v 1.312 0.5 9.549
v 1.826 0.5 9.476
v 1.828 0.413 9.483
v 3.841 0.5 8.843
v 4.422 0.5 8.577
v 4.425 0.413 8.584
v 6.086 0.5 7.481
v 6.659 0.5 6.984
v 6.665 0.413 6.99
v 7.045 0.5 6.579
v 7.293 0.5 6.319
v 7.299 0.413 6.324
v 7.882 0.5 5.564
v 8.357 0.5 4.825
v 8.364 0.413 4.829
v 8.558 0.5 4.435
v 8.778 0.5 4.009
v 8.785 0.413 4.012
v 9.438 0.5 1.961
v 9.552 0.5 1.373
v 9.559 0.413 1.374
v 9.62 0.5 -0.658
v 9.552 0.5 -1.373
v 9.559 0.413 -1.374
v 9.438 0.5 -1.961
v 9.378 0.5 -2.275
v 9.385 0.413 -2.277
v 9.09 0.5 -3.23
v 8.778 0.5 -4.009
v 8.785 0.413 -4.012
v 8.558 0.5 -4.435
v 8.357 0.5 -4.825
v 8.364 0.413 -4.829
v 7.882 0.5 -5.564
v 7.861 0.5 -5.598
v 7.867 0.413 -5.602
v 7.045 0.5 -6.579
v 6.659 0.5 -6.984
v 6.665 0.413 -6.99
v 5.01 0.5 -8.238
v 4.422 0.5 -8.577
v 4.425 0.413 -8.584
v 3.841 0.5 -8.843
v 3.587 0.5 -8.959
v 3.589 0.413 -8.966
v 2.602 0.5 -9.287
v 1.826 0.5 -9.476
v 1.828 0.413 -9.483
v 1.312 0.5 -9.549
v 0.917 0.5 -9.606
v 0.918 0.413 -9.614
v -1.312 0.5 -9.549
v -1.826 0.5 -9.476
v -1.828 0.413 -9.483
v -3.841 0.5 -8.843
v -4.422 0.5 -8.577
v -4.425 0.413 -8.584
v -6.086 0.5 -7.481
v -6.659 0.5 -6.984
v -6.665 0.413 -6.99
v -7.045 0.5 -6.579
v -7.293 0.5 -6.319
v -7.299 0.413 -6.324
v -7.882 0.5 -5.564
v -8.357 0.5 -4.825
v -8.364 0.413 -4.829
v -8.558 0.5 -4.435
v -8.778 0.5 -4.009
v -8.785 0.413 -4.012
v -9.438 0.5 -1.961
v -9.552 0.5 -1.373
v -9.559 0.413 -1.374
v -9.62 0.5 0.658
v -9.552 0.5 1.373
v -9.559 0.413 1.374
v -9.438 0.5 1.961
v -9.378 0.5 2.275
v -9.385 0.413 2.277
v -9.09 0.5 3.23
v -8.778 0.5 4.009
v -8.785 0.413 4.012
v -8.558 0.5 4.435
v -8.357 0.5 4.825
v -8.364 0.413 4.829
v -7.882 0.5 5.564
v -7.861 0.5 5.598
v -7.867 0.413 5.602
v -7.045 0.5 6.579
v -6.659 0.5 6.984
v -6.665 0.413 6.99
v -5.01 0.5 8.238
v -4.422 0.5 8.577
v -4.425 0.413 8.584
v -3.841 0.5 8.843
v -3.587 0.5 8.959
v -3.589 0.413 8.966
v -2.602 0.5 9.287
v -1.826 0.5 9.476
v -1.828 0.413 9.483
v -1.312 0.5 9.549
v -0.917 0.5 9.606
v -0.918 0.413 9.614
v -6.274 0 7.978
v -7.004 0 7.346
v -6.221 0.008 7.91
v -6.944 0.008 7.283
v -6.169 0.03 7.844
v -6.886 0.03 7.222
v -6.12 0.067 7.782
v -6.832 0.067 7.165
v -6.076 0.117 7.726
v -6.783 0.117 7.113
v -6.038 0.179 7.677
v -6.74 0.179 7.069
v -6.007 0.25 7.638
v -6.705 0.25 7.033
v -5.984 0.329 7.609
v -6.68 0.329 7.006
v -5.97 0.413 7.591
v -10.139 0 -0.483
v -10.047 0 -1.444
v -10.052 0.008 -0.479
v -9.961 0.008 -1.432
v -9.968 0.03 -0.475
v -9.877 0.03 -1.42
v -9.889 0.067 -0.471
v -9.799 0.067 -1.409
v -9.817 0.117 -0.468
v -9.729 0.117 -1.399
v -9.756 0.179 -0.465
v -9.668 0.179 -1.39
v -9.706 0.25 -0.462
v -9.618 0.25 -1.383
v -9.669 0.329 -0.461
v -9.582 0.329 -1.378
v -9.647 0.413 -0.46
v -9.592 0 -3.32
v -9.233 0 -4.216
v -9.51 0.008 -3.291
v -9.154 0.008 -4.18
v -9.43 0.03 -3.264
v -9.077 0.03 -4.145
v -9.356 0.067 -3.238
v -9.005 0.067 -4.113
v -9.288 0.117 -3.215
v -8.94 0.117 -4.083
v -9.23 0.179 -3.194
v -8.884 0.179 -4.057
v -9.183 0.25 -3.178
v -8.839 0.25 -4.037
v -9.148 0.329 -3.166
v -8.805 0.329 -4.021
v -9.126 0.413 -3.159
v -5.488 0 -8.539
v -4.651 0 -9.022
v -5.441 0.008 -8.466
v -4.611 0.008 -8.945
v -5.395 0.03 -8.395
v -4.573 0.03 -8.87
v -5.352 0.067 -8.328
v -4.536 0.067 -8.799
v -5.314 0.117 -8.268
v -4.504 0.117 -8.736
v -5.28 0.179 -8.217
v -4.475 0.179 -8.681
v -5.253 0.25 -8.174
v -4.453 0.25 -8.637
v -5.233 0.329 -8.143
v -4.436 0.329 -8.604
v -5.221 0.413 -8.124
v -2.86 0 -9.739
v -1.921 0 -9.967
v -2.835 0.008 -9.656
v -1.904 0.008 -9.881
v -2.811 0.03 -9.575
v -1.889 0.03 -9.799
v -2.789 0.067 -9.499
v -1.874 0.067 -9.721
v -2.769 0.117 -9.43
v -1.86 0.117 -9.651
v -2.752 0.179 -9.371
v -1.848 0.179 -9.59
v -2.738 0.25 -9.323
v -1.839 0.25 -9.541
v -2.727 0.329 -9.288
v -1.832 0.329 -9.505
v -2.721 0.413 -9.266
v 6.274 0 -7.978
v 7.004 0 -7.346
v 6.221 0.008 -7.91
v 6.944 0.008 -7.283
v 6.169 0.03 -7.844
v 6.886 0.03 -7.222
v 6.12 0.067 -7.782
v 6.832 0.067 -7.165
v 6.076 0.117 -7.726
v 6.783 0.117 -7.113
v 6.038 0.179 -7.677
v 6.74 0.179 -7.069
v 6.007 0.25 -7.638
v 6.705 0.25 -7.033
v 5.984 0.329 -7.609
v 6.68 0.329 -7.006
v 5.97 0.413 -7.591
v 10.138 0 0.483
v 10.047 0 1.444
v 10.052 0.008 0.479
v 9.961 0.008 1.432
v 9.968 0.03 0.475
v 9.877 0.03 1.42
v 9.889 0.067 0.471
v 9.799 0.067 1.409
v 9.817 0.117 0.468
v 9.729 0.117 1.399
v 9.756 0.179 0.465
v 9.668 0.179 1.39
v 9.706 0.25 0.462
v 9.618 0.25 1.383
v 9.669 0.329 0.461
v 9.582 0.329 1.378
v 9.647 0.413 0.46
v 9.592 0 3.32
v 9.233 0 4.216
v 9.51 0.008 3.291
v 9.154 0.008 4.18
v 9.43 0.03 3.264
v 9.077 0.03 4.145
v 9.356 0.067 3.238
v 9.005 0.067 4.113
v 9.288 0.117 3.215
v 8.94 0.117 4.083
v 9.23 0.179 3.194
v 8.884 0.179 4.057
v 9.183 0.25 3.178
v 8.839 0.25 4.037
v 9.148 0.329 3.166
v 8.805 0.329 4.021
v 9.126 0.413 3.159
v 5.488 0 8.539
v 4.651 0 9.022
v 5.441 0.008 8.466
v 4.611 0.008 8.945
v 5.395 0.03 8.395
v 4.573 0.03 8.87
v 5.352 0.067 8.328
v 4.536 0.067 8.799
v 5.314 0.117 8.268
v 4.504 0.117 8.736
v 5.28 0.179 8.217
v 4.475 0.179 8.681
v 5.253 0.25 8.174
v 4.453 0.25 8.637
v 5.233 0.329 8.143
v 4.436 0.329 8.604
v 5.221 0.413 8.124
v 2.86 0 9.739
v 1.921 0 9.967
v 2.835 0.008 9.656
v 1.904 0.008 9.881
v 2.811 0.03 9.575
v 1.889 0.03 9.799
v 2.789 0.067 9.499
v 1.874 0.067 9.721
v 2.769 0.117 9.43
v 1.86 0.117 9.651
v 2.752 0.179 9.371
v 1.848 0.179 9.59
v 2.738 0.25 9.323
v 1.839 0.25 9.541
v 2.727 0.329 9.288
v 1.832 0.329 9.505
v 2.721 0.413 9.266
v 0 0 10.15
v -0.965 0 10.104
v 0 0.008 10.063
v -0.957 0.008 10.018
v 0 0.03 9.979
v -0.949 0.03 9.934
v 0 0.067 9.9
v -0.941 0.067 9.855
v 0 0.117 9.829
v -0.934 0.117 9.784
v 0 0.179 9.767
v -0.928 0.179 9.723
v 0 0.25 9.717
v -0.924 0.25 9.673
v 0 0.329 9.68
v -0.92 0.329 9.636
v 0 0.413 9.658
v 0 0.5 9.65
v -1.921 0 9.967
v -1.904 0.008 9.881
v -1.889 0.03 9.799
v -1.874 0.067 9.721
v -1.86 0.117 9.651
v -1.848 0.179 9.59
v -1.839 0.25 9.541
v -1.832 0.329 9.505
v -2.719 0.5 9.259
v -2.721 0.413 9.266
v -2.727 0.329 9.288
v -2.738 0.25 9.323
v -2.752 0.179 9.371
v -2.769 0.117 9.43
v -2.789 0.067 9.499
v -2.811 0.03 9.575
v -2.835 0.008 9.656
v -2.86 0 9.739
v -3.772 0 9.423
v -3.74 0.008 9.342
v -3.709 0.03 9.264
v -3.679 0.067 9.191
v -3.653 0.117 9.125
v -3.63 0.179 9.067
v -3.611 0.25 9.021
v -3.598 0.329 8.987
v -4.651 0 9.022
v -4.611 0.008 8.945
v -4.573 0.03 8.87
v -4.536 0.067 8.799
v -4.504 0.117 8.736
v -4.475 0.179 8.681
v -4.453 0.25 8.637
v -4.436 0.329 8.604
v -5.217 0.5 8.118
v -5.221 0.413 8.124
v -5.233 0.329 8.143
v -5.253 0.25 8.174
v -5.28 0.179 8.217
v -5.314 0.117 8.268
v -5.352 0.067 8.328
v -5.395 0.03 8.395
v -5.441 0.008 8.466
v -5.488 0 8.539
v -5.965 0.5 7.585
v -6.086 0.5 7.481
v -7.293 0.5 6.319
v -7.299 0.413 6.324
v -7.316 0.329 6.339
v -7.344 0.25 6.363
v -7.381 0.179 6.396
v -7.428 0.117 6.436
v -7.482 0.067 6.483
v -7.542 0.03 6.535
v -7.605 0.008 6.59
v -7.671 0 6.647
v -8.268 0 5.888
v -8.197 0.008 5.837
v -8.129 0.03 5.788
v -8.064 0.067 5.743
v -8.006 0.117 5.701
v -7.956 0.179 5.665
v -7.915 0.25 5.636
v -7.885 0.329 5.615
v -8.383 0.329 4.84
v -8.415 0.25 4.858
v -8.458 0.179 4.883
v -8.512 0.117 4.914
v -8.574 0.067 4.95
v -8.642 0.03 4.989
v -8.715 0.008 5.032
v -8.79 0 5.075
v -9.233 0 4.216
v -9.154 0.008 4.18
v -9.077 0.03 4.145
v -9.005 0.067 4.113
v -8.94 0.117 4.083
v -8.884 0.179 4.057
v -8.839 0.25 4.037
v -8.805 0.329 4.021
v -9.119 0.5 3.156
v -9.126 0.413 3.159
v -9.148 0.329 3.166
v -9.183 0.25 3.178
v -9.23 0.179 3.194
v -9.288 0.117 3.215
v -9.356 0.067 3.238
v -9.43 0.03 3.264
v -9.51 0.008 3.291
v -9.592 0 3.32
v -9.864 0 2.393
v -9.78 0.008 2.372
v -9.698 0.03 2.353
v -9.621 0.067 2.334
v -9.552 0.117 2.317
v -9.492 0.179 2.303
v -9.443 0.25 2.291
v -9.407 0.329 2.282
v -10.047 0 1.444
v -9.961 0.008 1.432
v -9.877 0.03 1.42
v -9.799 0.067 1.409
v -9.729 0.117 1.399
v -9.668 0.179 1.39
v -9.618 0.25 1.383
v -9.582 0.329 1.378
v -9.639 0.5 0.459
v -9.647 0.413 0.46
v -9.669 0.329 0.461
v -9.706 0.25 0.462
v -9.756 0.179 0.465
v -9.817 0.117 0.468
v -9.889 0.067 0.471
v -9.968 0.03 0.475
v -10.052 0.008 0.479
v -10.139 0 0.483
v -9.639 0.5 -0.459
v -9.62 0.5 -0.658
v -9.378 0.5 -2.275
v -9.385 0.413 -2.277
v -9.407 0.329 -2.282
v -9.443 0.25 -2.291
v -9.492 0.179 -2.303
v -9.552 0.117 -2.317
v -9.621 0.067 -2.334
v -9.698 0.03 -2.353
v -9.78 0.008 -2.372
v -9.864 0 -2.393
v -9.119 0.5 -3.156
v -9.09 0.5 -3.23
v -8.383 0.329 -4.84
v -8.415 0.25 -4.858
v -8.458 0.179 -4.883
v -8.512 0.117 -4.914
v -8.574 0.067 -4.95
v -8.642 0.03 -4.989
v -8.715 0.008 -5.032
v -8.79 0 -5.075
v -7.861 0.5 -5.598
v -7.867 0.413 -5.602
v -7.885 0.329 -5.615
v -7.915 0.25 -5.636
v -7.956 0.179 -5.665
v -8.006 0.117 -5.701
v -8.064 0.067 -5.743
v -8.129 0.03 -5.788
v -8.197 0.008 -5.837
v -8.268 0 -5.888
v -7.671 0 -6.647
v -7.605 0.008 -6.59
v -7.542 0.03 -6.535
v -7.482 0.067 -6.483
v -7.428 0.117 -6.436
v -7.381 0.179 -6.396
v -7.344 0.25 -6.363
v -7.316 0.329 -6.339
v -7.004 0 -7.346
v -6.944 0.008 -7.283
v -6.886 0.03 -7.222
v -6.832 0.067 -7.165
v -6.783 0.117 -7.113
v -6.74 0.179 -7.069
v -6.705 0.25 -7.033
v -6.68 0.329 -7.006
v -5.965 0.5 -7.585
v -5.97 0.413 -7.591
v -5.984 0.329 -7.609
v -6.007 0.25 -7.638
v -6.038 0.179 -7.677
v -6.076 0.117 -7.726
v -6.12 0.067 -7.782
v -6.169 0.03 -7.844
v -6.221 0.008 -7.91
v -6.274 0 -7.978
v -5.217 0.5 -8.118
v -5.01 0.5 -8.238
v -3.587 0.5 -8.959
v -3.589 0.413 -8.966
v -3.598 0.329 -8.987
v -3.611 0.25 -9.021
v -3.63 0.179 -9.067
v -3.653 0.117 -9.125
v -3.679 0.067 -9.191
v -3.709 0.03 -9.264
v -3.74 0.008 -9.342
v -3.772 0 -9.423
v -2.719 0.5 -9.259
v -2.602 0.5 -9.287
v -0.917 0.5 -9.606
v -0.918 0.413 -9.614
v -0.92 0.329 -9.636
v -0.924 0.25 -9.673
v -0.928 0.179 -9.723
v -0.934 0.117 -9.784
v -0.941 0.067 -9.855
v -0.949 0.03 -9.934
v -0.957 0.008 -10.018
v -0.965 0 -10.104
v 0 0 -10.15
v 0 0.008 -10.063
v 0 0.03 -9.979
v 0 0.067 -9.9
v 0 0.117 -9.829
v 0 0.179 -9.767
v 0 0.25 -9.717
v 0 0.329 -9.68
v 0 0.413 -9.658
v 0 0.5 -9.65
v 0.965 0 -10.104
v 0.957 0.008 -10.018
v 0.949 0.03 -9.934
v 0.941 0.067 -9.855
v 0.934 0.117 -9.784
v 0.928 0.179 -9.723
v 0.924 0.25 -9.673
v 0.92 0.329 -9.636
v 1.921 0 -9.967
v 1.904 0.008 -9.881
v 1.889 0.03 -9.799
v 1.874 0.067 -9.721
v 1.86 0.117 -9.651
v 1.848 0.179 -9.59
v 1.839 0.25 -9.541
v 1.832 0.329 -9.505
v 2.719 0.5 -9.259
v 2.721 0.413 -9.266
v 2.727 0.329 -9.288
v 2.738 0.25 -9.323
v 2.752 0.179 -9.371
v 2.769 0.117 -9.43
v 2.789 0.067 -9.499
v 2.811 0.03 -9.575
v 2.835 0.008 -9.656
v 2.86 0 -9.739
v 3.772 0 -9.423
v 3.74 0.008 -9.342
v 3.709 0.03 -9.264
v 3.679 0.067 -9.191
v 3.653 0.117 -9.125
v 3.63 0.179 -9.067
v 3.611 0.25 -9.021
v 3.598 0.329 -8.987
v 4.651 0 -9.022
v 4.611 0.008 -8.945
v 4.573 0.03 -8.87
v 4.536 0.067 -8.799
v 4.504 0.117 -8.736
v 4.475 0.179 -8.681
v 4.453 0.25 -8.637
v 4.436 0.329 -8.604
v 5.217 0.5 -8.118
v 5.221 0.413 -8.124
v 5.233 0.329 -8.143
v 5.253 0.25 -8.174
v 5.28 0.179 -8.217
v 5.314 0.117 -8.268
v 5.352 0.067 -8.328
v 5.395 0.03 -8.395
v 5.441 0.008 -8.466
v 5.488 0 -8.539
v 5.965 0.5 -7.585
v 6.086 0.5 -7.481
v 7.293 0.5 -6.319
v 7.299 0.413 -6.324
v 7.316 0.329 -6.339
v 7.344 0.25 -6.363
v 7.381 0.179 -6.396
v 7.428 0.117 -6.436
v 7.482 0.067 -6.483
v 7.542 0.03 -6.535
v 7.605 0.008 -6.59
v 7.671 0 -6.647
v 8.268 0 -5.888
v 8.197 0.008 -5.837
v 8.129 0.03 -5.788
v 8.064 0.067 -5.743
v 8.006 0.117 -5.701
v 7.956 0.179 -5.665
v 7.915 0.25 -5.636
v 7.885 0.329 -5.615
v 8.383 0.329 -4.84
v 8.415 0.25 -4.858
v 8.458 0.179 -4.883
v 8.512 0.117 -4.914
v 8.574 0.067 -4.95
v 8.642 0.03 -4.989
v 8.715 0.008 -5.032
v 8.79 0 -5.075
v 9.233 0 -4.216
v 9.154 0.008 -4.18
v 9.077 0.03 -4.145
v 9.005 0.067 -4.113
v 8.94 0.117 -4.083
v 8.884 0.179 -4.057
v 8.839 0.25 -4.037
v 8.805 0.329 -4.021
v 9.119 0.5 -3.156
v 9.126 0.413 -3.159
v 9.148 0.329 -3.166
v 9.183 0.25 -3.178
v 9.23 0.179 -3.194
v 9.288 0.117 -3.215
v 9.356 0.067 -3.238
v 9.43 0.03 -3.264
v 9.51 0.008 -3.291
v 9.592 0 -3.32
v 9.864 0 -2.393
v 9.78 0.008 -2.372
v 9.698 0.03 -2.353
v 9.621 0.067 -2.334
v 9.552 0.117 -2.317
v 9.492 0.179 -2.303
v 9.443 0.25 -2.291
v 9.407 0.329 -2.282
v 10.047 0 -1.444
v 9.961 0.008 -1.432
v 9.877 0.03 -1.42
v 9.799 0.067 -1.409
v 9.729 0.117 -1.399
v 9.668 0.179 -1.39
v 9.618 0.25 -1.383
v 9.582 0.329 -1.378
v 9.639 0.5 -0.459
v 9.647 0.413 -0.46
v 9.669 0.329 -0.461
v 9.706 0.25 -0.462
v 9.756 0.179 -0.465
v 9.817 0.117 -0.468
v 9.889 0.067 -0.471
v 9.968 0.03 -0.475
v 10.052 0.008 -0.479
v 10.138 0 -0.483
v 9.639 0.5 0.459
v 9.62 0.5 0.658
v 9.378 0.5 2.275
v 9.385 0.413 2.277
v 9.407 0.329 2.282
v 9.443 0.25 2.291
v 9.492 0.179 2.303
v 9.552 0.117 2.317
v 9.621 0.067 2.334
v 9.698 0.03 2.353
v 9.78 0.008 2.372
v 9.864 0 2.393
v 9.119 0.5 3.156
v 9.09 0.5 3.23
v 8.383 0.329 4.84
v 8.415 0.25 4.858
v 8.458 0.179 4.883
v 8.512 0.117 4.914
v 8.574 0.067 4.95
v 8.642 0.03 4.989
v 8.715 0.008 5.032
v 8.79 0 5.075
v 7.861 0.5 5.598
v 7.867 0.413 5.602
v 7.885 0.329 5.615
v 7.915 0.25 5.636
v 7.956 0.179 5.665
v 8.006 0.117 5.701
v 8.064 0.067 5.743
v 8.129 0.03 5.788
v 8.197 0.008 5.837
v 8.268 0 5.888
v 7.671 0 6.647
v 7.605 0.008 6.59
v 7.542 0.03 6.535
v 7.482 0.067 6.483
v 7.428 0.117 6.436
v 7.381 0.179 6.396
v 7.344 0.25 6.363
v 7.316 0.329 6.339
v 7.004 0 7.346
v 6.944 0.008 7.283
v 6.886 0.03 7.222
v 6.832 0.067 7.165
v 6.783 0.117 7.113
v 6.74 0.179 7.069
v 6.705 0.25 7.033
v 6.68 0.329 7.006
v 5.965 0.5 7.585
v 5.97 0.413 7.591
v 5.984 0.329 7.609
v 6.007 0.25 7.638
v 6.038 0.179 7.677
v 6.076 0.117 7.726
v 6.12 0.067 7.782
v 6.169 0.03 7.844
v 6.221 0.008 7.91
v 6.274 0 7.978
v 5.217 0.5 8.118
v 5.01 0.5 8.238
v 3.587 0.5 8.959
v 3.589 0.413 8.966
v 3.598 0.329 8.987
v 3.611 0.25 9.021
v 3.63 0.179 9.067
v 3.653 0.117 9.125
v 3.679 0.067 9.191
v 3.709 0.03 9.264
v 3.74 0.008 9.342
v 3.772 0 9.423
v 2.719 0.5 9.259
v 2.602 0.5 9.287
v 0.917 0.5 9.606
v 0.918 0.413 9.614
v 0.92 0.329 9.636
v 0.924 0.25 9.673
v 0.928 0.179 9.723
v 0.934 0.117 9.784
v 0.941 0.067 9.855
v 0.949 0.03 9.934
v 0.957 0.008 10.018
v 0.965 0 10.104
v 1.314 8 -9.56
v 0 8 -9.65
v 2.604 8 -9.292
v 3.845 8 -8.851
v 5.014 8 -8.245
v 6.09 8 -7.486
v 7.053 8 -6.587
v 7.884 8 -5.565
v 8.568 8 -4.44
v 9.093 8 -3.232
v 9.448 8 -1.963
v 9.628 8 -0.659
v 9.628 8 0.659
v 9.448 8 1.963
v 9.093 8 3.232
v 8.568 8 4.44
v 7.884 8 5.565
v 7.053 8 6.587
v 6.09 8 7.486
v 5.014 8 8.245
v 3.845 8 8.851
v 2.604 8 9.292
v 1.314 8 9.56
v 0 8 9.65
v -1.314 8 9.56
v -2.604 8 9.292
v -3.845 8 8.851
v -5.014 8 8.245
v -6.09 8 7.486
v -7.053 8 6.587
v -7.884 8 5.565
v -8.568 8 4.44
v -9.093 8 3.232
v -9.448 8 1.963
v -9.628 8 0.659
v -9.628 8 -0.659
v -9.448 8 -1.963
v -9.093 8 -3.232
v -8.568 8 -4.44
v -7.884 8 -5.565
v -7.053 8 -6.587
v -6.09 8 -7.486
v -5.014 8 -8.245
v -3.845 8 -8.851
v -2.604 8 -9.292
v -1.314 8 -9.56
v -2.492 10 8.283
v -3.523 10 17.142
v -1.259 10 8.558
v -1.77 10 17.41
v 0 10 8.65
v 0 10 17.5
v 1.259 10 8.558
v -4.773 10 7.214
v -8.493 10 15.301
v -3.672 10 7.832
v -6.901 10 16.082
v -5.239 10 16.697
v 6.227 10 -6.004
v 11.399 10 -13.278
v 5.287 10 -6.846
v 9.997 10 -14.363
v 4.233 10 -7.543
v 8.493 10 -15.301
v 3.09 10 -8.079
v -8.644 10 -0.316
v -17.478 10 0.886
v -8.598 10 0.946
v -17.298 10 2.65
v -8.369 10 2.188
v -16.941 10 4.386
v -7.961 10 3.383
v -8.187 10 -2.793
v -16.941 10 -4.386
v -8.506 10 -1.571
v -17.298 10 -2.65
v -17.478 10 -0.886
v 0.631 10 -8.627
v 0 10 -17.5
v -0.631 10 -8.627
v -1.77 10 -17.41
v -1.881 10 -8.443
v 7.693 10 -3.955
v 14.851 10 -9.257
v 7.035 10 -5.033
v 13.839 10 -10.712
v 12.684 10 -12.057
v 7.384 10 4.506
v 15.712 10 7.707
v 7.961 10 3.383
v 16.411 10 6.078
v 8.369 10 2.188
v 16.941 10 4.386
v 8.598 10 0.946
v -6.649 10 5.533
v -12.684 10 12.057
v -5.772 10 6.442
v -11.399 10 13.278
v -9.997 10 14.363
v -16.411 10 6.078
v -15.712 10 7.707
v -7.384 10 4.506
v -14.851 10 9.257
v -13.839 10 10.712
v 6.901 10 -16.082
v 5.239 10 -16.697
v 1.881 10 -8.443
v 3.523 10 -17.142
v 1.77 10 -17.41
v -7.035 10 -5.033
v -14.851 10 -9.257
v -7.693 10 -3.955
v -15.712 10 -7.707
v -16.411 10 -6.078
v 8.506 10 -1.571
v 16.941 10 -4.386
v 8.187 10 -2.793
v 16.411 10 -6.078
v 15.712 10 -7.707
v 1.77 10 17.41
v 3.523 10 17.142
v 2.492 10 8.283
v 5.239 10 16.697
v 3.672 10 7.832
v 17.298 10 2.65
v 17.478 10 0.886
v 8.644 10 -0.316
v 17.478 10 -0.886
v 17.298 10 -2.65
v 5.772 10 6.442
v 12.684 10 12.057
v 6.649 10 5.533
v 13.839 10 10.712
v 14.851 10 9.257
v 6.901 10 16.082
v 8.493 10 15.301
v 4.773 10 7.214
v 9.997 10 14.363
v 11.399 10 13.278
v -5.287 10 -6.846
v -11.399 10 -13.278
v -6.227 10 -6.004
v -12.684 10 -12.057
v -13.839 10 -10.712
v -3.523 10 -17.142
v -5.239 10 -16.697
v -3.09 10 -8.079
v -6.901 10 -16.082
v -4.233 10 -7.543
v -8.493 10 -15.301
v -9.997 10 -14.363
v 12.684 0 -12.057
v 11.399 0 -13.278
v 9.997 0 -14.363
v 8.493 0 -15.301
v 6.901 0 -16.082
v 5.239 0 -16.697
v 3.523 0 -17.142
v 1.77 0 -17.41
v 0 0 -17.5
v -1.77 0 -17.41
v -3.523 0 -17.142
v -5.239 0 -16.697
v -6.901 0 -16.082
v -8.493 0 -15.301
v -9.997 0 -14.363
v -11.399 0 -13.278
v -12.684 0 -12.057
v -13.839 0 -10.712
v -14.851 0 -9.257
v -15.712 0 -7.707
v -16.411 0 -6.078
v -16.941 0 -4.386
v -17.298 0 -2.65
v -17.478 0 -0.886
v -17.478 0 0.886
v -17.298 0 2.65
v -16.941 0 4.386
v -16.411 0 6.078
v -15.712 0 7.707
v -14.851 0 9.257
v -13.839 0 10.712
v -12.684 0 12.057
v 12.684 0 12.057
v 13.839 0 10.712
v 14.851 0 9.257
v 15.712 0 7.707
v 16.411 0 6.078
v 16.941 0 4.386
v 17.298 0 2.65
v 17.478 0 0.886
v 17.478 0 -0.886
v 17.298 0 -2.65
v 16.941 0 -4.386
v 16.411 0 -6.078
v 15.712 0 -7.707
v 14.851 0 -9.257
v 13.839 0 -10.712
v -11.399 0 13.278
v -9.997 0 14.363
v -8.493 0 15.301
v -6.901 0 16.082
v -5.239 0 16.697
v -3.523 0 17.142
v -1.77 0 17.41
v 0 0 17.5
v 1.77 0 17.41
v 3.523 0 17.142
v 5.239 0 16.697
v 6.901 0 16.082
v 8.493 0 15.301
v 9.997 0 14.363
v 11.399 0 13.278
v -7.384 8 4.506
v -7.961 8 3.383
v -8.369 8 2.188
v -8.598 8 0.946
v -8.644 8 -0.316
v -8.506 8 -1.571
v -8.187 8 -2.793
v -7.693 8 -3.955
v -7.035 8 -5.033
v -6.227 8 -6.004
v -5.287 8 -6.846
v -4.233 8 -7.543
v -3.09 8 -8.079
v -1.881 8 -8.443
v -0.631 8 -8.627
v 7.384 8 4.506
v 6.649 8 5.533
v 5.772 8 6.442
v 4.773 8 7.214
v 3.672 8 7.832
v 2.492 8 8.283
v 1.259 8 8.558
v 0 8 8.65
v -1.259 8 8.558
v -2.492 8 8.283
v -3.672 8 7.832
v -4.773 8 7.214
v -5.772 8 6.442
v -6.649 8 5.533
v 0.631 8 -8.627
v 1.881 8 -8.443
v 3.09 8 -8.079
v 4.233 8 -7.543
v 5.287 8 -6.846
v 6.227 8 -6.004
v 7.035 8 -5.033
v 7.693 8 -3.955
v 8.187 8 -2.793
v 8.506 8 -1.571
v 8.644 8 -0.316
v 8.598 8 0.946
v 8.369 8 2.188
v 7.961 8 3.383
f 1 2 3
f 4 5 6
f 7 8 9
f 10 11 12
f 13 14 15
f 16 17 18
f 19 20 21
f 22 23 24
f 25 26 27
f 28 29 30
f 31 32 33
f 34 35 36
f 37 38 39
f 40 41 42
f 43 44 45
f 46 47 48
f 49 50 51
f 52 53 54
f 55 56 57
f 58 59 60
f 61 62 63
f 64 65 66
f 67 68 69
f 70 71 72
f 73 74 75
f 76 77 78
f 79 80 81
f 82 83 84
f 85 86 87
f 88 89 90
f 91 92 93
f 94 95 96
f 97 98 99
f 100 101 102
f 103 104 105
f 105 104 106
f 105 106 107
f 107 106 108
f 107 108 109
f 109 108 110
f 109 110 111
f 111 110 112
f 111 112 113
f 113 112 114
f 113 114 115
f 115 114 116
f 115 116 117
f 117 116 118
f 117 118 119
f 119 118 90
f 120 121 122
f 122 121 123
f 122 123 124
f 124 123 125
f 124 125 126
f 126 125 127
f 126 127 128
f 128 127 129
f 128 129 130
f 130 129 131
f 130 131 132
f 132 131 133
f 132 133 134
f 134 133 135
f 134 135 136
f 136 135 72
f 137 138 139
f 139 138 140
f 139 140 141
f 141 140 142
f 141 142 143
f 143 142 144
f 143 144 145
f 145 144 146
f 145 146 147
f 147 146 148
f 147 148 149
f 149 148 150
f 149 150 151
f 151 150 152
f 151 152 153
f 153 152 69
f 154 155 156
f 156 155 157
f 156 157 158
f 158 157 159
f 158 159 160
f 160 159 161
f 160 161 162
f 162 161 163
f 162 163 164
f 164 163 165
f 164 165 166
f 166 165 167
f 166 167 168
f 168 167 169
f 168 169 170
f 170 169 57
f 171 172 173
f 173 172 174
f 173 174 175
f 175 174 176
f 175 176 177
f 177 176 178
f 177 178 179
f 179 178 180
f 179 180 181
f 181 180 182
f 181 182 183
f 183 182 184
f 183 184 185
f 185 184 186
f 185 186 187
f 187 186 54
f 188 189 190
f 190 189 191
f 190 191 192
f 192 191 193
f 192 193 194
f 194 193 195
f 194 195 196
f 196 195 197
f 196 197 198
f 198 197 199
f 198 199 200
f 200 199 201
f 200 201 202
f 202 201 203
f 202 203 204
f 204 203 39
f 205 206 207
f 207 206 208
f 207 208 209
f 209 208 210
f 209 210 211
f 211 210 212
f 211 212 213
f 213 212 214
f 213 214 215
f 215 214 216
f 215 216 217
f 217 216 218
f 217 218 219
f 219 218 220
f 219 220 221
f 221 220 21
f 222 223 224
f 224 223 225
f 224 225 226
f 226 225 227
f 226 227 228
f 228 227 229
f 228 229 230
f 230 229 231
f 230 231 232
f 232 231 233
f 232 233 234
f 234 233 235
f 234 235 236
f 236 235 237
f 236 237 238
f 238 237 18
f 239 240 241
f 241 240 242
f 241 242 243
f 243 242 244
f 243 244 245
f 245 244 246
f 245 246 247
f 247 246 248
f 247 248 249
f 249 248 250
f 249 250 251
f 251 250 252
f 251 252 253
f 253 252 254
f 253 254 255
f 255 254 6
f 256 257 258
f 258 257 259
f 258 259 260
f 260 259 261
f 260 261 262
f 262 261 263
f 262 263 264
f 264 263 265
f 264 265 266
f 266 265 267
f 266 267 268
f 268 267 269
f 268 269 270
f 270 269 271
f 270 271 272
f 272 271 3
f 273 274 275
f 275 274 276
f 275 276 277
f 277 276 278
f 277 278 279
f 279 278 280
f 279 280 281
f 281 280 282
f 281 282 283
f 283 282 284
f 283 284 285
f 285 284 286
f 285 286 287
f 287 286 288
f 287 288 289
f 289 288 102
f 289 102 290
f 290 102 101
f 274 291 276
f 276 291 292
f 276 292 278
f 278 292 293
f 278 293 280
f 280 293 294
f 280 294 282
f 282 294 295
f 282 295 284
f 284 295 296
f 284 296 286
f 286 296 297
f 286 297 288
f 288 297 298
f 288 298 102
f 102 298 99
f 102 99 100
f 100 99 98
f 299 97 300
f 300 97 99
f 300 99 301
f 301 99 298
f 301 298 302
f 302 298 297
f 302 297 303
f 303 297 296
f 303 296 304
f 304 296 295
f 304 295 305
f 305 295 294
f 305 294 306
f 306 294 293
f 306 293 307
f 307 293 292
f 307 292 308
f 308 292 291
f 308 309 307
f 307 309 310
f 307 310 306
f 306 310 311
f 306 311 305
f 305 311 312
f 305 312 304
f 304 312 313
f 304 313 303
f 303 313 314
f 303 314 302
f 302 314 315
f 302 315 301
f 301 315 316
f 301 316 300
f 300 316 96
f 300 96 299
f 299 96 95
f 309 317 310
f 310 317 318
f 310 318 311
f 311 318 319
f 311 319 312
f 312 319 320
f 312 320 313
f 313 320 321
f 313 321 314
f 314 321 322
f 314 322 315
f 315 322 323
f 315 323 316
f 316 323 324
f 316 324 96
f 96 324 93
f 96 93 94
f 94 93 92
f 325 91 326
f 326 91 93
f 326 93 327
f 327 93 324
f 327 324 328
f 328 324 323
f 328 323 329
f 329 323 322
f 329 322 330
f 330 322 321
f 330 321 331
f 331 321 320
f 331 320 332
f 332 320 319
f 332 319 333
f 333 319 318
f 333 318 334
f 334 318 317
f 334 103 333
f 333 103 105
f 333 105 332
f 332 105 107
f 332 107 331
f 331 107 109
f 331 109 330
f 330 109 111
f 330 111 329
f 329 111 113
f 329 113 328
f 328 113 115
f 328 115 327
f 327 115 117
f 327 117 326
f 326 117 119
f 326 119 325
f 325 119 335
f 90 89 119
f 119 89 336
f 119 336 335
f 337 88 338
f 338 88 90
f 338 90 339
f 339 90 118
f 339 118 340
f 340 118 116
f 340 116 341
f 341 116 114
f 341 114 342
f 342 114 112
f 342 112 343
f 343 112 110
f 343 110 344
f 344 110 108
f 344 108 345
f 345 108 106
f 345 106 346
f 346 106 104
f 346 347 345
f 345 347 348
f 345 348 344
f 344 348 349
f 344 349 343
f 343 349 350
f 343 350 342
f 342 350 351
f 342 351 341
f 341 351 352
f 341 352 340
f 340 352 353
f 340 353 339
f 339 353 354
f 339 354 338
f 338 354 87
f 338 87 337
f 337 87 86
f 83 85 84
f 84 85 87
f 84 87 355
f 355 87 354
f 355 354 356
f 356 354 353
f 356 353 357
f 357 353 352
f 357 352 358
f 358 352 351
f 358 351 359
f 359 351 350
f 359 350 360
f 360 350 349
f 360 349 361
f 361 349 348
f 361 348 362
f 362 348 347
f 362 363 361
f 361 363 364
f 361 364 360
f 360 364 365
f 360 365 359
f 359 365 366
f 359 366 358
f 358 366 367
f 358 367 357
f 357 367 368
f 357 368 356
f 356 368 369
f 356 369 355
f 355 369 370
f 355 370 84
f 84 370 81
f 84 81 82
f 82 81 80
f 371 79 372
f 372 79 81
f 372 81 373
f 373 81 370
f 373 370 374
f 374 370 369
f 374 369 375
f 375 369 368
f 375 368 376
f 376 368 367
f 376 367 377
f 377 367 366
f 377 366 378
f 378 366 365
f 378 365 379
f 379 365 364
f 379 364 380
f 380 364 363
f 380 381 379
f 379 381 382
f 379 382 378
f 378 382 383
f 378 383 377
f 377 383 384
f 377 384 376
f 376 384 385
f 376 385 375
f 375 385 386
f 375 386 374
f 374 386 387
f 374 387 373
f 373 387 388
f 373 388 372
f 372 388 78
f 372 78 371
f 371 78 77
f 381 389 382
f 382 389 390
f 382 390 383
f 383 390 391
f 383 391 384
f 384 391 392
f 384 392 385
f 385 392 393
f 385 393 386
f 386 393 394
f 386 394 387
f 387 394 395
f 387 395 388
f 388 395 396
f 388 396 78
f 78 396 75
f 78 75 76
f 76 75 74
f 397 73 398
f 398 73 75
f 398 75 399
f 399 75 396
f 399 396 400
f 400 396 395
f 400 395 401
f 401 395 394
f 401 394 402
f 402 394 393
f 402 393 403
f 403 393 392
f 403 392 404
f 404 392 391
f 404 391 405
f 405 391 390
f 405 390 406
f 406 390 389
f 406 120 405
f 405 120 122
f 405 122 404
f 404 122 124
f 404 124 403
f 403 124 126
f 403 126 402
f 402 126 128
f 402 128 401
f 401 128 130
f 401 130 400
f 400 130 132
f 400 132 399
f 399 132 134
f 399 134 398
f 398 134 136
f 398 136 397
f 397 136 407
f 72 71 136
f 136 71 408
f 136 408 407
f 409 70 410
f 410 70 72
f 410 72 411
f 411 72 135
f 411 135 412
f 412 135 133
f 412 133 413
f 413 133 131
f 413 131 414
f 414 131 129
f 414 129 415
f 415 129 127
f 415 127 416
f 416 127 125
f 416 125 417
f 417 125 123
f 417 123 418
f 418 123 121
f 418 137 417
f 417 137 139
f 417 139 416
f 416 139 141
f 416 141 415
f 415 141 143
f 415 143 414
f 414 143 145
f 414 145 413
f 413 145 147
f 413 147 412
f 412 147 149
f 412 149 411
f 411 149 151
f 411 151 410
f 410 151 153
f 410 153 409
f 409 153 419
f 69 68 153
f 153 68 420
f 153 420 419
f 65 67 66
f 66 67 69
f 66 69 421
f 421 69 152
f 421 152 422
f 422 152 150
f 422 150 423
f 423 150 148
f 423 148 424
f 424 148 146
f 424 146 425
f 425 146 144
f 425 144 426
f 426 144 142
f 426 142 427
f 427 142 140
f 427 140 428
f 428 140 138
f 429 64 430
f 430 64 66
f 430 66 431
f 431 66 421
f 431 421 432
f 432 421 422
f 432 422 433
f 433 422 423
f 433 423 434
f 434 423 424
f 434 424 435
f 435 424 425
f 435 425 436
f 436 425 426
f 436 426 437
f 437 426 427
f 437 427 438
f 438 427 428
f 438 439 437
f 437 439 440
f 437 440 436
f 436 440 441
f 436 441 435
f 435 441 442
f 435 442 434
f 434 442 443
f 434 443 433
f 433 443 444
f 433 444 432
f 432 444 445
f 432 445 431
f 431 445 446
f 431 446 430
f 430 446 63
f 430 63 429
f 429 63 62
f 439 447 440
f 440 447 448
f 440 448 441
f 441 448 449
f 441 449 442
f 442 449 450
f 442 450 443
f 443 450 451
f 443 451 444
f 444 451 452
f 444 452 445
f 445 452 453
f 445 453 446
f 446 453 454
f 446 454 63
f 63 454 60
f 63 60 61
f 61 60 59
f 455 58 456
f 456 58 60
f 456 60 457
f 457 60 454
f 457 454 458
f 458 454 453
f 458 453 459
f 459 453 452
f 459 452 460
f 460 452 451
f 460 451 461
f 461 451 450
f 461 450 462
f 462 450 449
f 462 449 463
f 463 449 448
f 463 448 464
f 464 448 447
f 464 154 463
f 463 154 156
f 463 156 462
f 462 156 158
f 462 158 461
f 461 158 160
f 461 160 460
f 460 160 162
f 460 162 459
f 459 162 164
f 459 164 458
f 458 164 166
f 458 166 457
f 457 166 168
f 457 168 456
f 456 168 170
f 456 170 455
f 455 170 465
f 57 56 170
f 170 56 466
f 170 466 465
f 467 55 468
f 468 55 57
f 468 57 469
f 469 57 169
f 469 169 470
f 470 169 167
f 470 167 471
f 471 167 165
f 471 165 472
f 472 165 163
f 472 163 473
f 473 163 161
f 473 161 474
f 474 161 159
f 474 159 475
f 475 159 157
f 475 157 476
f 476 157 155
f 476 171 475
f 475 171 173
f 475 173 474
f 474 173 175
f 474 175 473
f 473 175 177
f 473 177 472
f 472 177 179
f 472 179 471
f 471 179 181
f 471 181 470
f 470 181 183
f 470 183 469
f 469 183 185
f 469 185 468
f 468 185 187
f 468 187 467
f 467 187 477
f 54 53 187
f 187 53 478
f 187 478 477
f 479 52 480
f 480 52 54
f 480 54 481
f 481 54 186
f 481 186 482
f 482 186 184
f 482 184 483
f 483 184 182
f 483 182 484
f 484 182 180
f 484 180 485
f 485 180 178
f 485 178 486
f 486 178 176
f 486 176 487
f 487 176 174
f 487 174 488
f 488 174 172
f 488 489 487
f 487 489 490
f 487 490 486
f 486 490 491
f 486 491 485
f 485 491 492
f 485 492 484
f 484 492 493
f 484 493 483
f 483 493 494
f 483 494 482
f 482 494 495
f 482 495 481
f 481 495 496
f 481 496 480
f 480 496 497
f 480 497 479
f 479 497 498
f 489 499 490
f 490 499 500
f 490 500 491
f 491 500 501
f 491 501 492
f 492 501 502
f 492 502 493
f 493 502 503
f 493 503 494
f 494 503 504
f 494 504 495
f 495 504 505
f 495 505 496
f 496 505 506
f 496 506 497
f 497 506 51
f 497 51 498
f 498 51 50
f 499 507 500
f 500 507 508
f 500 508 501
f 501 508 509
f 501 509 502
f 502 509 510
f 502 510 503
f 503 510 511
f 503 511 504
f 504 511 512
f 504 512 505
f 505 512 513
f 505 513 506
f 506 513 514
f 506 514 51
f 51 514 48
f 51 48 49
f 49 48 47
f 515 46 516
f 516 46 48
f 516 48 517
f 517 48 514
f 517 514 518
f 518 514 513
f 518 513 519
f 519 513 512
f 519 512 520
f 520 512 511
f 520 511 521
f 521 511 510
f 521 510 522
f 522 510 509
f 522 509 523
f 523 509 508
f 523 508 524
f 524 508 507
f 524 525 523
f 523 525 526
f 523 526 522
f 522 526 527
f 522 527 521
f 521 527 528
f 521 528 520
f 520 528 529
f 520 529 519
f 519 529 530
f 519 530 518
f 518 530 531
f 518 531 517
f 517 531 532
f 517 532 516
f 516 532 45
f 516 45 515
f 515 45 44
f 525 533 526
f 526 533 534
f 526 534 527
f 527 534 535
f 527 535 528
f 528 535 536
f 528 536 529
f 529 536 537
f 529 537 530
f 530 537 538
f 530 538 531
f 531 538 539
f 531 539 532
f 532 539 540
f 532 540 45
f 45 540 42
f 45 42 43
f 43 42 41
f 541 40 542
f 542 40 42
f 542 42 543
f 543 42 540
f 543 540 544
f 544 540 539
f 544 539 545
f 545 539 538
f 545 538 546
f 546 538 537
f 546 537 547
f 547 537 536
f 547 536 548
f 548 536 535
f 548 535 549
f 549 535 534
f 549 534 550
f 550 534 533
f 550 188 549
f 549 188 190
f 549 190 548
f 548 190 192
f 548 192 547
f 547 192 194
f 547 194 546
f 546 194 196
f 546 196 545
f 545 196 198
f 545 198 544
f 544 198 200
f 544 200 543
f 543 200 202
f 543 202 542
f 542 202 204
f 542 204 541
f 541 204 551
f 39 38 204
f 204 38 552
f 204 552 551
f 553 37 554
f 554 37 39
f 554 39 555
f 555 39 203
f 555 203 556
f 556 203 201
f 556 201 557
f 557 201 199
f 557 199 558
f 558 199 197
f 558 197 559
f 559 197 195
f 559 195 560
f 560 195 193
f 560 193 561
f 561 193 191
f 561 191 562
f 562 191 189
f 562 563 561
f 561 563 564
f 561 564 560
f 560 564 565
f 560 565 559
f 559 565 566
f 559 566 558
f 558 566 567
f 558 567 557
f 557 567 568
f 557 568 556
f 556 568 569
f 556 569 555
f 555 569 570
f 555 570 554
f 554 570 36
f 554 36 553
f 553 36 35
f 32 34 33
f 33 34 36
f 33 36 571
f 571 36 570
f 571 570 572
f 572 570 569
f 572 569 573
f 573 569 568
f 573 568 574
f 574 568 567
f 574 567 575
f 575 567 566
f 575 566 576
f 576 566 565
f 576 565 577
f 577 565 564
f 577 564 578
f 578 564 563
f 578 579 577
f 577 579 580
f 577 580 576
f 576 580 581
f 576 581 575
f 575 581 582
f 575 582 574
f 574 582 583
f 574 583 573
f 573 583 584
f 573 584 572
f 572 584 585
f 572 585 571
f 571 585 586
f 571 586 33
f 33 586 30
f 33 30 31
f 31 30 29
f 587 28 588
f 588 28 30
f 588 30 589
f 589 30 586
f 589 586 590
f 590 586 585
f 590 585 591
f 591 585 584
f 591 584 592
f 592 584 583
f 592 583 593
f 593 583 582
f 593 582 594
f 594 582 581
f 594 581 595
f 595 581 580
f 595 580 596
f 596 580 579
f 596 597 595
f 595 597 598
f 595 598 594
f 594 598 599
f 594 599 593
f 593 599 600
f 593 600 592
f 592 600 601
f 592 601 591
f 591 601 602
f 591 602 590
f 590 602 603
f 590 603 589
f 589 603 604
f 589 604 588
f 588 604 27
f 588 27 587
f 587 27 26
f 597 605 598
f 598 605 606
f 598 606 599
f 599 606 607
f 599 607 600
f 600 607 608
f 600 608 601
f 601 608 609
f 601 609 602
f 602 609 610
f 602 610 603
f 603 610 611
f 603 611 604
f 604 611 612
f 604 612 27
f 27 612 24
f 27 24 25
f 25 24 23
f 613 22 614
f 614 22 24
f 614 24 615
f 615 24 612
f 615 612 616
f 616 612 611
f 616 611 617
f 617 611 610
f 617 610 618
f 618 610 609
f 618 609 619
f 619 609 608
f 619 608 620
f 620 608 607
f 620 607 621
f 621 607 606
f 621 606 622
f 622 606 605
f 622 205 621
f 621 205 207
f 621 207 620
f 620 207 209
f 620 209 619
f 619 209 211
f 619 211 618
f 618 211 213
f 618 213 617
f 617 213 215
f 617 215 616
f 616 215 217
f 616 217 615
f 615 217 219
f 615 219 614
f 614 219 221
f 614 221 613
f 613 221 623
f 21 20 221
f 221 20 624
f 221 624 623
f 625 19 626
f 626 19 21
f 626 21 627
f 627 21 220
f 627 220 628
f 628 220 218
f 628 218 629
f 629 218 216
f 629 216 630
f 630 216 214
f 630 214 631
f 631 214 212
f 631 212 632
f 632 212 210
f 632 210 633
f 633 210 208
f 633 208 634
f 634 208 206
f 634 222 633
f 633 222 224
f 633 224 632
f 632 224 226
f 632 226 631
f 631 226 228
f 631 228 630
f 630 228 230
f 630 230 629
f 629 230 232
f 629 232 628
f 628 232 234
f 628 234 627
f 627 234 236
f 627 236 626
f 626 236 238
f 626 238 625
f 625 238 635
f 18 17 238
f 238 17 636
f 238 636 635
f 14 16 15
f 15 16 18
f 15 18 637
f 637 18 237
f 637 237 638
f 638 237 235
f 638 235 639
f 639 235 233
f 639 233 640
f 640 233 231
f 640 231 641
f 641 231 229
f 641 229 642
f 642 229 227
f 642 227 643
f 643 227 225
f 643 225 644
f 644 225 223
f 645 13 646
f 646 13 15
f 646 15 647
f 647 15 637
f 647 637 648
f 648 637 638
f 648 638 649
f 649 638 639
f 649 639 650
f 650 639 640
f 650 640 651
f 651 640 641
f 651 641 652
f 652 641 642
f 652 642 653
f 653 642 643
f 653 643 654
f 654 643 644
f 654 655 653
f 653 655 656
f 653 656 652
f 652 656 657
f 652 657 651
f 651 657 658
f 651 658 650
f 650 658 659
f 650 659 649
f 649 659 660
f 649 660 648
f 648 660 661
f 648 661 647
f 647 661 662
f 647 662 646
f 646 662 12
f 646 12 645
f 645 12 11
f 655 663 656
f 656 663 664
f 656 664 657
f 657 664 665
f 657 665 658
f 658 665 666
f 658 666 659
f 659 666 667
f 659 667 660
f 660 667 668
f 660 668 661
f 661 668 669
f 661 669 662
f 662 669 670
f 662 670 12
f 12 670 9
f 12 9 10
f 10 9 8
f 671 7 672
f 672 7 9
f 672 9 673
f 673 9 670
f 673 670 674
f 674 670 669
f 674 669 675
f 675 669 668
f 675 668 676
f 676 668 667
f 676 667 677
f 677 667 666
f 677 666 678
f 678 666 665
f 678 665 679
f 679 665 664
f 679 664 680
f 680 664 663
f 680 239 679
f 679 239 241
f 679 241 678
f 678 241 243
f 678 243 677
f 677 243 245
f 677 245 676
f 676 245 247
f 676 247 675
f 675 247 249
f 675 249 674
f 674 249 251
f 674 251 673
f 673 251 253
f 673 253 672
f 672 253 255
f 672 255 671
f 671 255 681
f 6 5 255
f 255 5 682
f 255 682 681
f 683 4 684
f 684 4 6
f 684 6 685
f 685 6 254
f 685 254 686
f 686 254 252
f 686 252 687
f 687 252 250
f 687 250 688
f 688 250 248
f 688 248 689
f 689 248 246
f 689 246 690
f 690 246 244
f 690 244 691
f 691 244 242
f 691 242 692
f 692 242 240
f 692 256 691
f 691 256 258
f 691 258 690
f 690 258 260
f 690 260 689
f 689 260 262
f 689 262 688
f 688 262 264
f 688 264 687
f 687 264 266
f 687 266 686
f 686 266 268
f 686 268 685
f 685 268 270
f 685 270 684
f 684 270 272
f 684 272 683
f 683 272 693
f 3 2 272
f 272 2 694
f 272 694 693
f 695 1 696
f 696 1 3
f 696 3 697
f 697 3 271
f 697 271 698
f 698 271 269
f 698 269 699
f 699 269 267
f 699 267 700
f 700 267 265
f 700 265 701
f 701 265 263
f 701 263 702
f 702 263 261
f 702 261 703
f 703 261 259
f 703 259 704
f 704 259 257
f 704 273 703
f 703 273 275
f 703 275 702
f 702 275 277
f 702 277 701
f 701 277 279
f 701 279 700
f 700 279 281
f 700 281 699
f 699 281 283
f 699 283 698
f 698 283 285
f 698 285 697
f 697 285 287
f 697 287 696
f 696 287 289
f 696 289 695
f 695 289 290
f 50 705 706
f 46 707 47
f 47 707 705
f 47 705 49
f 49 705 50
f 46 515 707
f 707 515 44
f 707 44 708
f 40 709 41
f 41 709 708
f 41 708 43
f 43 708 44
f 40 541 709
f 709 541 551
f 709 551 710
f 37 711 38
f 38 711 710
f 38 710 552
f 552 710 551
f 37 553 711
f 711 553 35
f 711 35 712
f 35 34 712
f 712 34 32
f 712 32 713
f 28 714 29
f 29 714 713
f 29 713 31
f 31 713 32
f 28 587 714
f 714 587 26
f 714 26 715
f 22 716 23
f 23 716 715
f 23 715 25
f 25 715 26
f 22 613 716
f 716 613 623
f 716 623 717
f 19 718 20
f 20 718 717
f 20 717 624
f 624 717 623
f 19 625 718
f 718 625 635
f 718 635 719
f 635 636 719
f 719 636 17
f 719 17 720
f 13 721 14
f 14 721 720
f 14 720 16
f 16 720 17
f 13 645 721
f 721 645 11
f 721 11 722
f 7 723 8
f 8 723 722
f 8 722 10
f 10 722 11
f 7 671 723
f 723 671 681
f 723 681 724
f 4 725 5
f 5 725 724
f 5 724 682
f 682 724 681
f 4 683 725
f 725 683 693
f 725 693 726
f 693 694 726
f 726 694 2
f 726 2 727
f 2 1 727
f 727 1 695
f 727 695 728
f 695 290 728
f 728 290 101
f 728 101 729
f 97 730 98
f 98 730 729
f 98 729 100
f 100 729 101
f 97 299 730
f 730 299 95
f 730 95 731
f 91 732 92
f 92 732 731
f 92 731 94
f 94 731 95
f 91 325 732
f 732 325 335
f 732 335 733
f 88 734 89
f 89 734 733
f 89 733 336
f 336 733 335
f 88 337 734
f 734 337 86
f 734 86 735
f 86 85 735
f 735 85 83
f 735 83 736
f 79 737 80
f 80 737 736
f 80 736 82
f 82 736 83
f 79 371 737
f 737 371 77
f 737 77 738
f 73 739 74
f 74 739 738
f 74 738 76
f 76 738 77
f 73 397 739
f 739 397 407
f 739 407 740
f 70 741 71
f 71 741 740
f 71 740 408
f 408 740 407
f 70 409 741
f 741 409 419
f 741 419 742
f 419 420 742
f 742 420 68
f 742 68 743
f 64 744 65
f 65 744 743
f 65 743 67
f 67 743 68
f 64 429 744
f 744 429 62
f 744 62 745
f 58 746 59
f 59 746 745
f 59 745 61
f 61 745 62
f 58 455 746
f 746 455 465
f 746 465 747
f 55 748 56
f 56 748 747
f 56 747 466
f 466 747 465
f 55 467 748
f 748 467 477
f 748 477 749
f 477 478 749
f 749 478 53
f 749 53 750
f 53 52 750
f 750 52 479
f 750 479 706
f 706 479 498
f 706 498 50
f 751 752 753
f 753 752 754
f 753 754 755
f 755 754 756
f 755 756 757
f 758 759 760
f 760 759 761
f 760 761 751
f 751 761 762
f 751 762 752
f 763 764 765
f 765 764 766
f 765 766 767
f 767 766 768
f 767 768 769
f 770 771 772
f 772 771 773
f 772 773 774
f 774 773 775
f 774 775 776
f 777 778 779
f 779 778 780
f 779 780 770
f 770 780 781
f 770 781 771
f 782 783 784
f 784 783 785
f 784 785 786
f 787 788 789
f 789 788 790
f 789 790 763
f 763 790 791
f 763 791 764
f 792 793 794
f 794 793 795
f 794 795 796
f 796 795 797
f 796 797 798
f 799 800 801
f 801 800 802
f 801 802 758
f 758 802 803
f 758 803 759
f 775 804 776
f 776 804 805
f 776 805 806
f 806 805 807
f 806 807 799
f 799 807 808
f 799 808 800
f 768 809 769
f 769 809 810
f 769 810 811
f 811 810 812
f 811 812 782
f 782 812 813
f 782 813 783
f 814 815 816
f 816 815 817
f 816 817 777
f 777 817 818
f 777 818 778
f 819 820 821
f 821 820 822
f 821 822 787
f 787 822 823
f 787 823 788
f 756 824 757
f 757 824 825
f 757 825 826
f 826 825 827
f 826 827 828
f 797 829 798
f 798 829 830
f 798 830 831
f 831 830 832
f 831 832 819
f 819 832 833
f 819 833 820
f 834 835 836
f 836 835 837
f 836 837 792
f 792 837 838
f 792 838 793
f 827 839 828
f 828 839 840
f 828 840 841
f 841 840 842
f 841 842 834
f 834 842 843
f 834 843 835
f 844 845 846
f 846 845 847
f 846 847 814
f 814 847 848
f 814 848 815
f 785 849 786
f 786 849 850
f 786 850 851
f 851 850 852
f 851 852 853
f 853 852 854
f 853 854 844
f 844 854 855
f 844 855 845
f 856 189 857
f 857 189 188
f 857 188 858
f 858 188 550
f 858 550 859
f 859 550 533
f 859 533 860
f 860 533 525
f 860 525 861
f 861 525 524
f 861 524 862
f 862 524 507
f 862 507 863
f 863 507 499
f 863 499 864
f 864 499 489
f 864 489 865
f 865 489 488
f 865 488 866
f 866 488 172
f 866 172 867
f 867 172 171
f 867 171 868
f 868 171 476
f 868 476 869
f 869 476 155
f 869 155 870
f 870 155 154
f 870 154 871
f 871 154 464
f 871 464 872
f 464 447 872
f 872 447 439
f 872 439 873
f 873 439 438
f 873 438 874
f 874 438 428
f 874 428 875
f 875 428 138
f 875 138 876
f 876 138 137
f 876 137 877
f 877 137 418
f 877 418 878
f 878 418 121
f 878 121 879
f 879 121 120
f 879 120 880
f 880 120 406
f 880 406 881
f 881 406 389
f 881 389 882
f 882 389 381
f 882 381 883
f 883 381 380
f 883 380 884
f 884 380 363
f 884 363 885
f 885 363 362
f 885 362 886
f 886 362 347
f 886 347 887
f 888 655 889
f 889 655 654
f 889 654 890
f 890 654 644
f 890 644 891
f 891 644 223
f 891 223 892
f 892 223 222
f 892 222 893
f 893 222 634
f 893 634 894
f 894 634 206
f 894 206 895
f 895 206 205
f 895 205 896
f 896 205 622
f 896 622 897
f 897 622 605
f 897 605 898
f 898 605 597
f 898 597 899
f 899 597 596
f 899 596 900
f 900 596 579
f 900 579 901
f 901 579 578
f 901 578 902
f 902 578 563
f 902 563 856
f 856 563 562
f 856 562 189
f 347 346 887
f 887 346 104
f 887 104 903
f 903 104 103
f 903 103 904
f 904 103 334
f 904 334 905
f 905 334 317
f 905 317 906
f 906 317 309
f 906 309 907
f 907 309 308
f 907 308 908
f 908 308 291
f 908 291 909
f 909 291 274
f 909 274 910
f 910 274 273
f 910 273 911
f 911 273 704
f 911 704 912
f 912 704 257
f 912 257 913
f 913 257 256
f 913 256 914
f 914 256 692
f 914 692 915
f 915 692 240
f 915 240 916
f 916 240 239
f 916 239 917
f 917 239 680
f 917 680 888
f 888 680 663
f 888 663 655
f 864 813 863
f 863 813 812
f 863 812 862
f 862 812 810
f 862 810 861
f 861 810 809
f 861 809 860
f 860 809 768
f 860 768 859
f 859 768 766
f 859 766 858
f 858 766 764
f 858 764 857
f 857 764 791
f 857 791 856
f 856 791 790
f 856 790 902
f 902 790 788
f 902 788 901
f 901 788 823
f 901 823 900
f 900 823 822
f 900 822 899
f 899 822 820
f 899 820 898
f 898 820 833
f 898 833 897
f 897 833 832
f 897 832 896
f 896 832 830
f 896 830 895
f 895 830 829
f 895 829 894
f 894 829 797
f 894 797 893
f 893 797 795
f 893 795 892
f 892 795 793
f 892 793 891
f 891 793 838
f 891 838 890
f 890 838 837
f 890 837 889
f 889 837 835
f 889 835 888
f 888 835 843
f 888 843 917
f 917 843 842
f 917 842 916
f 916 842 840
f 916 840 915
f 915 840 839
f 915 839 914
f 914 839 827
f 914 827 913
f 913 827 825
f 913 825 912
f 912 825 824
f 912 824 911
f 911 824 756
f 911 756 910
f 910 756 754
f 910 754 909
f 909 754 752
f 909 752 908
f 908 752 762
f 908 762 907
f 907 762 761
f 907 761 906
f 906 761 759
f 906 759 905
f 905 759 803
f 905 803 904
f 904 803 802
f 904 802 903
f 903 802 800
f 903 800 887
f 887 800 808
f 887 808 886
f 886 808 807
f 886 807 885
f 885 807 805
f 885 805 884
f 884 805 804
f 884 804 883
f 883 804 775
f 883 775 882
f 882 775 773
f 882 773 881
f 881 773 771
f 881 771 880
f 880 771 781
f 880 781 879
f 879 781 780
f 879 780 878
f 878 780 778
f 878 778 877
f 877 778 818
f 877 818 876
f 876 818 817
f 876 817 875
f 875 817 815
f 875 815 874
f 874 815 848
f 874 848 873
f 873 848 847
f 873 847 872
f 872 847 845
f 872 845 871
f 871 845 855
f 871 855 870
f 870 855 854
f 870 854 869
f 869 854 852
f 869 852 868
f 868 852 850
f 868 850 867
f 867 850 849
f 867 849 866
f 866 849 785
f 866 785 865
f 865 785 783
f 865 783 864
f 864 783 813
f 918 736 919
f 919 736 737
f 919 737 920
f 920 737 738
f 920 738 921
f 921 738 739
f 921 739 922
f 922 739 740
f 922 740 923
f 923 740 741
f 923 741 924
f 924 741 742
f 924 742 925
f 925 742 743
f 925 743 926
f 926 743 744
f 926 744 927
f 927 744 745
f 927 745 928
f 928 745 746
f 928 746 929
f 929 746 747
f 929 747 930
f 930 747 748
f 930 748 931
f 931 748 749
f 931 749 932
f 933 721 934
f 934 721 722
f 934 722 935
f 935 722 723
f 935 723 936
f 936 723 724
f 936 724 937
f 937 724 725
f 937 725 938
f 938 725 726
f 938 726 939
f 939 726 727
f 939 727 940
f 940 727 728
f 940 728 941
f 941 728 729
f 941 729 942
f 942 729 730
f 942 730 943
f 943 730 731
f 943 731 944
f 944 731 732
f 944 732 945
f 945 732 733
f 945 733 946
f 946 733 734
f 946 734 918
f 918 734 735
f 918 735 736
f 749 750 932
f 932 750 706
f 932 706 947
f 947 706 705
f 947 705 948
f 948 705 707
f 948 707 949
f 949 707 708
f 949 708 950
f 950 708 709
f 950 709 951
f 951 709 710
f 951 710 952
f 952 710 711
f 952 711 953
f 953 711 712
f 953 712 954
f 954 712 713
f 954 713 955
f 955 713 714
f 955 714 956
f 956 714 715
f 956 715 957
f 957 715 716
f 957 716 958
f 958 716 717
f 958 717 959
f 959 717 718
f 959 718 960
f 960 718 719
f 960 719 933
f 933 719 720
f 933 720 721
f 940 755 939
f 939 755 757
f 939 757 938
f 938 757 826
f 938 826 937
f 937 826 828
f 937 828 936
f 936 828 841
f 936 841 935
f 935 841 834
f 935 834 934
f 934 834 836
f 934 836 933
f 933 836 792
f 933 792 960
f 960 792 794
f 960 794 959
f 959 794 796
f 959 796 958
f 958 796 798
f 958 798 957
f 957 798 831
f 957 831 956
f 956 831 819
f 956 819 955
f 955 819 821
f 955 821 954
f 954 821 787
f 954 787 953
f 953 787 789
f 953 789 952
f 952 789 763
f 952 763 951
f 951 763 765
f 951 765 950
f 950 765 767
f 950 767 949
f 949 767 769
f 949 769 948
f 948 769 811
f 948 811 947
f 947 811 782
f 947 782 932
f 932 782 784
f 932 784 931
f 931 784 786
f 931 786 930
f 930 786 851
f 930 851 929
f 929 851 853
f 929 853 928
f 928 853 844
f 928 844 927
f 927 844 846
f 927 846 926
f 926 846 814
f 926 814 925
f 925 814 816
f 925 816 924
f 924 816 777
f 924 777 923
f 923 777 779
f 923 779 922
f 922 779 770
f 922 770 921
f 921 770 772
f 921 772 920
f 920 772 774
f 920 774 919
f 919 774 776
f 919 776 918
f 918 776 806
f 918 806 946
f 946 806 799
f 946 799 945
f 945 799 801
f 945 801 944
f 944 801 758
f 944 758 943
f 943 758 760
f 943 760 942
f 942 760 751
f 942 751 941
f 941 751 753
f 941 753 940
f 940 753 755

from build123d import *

# Parameters (mm, degrees)
SKETCH_1_R      = 17.5
SKETCH_1_R_2    = 9.65
EXTRUDE_1_DEPTH = 10
SKETCH_2_R      = 9.65
SKETCH_2_R_2    = 8.65
EXTRUDE_2_DEPTH = 2
FILLET_1_R      = 0.5


with BuildPart() as part:
    # Эскиз1 → Бобышка-Вытянуть1 (new body)
    with BuildSketch(Plane(origin=(0, 0, 0), x_dir=(1, 0, 0), z_dir=(0, 1, 0))):
        Circle(SKETCH_1_R)
        Circle(SKETCH_1_R_2, mode=Mode.SUBTRACT)
    extrude(amount=EXTRUDE_1_DEPTH)

    # Эскиз2 → Бобышка-Вытянуть2 (add)
    with BuildSketch(Plane(origin=(0, 10, 0), x_dir=(1, 0, 0), z_dir=(0, 1, 0))):
        Circle(SKETCH_2_R)
        Circle(SKETCH_2_R_2, mode=Mode.SUBTRACT)
    extrude(amount=-EXTRUDE_2_DEPTH)

    # Скругление1
    fillet_1_edges = [part.edges().sort_by_distance(p)[0] for p in [
        (-9.65, 0, 0),
    ]]
    fillet(fillet_1_edges, radius=FILLET_1_R)


solid = part.part
